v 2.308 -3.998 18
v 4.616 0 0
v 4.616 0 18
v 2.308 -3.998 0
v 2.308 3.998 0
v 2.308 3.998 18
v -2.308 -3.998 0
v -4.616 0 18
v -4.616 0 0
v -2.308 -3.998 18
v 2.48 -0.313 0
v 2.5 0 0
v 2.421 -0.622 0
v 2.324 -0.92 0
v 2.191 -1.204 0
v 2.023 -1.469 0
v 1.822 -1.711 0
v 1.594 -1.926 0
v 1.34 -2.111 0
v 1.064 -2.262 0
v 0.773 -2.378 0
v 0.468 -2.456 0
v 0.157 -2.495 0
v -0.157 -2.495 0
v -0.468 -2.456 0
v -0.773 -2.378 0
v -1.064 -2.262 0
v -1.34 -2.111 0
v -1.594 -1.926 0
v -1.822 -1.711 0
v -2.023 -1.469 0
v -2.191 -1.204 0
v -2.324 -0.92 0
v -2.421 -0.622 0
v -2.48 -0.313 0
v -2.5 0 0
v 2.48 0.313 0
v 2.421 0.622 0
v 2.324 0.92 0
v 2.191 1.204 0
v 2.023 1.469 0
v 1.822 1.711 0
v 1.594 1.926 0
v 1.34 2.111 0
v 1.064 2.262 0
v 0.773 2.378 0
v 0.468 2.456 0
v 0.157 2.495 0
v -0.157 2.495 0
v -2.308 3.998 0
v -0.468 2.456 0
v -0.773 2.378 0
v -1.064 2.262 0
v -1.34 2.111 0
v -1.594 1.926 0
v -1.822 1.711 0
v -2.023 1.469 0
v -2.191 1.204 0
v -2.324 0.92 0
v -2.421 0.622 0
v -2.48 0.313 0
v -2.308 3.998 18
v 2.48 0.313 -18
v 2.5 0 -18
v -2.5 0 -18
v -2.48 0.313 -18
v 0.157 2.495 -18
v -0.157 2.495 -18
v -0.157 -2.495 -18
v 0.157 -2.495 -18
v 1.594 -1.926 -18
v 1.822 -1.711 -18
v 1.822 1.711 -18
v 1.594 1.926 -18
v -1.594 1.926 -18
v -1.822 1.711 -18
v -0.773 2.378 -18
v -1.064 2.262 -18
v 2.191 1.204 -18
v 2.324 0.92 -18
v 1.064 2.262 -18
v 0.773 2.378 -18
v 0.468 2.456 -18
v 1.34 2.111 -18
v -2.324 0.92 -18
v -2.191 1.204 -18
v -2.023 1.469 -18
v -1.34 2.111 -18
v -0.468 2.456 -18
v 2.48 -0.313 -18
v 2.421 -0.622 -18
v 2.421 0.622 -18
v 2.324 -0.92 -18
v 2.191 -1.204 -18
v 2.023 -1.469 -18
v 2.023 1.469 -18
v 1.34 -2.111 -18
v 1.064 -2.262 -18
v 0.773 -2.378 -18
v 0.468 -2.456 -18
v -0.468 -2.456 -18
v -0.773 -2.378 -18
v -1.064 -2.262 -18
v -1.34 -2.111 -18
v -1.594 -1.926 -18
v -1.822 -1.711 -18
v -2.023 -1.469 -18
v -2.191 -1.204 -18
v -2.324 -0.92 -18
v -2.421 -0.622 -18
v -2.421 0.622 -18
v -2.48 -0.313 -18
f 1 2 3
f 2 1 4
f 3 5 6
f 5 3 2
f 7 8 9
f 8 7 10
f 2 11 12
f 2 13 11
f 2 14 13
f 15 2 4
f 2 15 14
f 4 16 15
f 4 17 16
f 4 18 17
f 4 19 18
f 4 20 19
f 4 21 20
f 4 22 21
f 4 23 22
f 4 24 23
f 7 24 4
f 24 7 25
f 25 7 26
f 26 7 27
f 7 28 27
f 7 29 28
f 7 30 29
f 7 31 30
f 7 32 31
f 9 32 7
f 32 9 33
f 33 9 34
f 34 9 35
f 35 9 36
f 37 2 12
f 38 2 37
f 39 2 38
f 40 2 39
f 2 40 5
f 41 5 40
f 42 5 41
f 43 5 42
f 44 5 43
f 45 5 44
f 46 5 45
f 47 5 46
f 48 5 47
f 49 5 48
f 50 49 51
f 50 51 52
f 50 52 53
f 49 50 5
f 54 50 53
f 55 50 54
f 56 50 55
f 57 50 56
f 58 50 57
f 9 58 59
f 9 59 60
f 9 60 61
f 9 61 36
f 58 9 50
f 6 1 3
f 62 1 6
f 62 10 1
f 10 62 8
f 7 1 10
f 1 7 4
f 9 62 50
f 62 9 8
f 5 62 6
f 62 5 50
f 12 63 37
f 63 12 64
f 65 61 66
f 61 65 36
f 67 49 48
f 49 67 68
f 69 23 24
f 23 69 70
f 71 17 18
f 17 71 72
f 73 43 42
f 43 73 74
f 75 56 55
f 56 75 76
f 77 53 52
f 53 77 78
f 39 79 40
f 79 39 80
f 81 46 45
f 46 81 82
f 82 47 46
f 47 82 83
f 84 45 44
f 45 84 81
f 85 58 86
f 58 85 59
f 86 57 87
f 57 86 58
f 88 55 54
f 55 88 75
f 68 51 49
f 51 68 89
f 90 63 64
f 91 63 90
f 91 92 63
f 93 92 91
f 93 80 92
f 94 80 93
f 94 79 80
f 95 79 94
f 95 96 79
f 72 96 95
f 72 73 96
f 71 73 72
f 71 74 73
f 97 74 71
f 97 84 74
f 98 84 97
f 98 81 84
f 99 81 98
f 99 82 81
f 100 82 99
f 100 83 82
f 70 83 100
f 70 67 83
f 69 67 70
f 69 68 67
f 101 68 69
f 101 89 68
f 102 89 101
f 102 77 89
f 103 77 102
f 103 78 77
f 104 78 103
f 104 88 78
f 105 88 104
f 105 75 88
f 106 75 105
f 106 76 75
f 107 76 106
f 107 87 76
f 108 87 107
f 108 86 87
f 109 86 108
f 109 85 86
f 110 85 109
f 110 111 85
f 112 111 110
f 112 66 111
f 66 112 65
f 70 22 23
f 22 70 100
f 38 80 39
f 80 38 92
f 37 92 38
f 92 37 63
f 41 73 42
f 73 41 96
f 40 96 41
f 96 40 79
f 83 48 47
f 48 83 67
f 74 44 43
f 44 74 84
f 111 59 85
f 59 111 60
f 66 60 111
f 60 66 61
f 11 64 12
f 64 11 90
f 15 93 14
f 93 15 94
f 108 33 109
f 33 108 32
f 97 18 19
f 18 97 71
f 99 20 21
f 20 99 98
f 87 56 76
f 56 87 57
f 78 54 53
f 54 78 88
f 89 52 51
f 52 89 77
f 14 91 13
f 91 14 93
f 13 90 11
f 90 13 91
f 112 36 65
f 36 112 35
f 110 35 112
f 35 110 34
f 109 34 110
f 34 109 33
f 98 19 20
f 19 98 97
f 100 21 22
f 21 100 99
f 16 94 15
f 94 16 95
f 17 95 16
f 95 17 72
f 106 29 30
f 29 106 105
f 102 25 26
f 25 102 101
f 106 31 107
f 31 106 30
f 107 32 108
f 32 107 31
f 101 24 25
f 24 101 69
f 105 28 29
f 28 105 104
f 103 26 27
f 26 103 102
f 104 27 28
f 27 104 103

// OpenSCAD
$fn = 50;


difference() {
	union() {
		linear_extrude(height = 18) {
			polygon(points = [[4.6160000000, 0.0000000000], [2.3080000000, 3.9975732639], [-2.3080000000, 3.9975732639], [-4.6160000000, 0.0000000000], [-2.3080000000, -3.9975732639], [2.3080000000, -3.9975732639]]);
		}
		translate(v = [0, 0, -18]) {
			cylinder(h = 18, r = 2.5000000000);
		}
	}
	union();
}
